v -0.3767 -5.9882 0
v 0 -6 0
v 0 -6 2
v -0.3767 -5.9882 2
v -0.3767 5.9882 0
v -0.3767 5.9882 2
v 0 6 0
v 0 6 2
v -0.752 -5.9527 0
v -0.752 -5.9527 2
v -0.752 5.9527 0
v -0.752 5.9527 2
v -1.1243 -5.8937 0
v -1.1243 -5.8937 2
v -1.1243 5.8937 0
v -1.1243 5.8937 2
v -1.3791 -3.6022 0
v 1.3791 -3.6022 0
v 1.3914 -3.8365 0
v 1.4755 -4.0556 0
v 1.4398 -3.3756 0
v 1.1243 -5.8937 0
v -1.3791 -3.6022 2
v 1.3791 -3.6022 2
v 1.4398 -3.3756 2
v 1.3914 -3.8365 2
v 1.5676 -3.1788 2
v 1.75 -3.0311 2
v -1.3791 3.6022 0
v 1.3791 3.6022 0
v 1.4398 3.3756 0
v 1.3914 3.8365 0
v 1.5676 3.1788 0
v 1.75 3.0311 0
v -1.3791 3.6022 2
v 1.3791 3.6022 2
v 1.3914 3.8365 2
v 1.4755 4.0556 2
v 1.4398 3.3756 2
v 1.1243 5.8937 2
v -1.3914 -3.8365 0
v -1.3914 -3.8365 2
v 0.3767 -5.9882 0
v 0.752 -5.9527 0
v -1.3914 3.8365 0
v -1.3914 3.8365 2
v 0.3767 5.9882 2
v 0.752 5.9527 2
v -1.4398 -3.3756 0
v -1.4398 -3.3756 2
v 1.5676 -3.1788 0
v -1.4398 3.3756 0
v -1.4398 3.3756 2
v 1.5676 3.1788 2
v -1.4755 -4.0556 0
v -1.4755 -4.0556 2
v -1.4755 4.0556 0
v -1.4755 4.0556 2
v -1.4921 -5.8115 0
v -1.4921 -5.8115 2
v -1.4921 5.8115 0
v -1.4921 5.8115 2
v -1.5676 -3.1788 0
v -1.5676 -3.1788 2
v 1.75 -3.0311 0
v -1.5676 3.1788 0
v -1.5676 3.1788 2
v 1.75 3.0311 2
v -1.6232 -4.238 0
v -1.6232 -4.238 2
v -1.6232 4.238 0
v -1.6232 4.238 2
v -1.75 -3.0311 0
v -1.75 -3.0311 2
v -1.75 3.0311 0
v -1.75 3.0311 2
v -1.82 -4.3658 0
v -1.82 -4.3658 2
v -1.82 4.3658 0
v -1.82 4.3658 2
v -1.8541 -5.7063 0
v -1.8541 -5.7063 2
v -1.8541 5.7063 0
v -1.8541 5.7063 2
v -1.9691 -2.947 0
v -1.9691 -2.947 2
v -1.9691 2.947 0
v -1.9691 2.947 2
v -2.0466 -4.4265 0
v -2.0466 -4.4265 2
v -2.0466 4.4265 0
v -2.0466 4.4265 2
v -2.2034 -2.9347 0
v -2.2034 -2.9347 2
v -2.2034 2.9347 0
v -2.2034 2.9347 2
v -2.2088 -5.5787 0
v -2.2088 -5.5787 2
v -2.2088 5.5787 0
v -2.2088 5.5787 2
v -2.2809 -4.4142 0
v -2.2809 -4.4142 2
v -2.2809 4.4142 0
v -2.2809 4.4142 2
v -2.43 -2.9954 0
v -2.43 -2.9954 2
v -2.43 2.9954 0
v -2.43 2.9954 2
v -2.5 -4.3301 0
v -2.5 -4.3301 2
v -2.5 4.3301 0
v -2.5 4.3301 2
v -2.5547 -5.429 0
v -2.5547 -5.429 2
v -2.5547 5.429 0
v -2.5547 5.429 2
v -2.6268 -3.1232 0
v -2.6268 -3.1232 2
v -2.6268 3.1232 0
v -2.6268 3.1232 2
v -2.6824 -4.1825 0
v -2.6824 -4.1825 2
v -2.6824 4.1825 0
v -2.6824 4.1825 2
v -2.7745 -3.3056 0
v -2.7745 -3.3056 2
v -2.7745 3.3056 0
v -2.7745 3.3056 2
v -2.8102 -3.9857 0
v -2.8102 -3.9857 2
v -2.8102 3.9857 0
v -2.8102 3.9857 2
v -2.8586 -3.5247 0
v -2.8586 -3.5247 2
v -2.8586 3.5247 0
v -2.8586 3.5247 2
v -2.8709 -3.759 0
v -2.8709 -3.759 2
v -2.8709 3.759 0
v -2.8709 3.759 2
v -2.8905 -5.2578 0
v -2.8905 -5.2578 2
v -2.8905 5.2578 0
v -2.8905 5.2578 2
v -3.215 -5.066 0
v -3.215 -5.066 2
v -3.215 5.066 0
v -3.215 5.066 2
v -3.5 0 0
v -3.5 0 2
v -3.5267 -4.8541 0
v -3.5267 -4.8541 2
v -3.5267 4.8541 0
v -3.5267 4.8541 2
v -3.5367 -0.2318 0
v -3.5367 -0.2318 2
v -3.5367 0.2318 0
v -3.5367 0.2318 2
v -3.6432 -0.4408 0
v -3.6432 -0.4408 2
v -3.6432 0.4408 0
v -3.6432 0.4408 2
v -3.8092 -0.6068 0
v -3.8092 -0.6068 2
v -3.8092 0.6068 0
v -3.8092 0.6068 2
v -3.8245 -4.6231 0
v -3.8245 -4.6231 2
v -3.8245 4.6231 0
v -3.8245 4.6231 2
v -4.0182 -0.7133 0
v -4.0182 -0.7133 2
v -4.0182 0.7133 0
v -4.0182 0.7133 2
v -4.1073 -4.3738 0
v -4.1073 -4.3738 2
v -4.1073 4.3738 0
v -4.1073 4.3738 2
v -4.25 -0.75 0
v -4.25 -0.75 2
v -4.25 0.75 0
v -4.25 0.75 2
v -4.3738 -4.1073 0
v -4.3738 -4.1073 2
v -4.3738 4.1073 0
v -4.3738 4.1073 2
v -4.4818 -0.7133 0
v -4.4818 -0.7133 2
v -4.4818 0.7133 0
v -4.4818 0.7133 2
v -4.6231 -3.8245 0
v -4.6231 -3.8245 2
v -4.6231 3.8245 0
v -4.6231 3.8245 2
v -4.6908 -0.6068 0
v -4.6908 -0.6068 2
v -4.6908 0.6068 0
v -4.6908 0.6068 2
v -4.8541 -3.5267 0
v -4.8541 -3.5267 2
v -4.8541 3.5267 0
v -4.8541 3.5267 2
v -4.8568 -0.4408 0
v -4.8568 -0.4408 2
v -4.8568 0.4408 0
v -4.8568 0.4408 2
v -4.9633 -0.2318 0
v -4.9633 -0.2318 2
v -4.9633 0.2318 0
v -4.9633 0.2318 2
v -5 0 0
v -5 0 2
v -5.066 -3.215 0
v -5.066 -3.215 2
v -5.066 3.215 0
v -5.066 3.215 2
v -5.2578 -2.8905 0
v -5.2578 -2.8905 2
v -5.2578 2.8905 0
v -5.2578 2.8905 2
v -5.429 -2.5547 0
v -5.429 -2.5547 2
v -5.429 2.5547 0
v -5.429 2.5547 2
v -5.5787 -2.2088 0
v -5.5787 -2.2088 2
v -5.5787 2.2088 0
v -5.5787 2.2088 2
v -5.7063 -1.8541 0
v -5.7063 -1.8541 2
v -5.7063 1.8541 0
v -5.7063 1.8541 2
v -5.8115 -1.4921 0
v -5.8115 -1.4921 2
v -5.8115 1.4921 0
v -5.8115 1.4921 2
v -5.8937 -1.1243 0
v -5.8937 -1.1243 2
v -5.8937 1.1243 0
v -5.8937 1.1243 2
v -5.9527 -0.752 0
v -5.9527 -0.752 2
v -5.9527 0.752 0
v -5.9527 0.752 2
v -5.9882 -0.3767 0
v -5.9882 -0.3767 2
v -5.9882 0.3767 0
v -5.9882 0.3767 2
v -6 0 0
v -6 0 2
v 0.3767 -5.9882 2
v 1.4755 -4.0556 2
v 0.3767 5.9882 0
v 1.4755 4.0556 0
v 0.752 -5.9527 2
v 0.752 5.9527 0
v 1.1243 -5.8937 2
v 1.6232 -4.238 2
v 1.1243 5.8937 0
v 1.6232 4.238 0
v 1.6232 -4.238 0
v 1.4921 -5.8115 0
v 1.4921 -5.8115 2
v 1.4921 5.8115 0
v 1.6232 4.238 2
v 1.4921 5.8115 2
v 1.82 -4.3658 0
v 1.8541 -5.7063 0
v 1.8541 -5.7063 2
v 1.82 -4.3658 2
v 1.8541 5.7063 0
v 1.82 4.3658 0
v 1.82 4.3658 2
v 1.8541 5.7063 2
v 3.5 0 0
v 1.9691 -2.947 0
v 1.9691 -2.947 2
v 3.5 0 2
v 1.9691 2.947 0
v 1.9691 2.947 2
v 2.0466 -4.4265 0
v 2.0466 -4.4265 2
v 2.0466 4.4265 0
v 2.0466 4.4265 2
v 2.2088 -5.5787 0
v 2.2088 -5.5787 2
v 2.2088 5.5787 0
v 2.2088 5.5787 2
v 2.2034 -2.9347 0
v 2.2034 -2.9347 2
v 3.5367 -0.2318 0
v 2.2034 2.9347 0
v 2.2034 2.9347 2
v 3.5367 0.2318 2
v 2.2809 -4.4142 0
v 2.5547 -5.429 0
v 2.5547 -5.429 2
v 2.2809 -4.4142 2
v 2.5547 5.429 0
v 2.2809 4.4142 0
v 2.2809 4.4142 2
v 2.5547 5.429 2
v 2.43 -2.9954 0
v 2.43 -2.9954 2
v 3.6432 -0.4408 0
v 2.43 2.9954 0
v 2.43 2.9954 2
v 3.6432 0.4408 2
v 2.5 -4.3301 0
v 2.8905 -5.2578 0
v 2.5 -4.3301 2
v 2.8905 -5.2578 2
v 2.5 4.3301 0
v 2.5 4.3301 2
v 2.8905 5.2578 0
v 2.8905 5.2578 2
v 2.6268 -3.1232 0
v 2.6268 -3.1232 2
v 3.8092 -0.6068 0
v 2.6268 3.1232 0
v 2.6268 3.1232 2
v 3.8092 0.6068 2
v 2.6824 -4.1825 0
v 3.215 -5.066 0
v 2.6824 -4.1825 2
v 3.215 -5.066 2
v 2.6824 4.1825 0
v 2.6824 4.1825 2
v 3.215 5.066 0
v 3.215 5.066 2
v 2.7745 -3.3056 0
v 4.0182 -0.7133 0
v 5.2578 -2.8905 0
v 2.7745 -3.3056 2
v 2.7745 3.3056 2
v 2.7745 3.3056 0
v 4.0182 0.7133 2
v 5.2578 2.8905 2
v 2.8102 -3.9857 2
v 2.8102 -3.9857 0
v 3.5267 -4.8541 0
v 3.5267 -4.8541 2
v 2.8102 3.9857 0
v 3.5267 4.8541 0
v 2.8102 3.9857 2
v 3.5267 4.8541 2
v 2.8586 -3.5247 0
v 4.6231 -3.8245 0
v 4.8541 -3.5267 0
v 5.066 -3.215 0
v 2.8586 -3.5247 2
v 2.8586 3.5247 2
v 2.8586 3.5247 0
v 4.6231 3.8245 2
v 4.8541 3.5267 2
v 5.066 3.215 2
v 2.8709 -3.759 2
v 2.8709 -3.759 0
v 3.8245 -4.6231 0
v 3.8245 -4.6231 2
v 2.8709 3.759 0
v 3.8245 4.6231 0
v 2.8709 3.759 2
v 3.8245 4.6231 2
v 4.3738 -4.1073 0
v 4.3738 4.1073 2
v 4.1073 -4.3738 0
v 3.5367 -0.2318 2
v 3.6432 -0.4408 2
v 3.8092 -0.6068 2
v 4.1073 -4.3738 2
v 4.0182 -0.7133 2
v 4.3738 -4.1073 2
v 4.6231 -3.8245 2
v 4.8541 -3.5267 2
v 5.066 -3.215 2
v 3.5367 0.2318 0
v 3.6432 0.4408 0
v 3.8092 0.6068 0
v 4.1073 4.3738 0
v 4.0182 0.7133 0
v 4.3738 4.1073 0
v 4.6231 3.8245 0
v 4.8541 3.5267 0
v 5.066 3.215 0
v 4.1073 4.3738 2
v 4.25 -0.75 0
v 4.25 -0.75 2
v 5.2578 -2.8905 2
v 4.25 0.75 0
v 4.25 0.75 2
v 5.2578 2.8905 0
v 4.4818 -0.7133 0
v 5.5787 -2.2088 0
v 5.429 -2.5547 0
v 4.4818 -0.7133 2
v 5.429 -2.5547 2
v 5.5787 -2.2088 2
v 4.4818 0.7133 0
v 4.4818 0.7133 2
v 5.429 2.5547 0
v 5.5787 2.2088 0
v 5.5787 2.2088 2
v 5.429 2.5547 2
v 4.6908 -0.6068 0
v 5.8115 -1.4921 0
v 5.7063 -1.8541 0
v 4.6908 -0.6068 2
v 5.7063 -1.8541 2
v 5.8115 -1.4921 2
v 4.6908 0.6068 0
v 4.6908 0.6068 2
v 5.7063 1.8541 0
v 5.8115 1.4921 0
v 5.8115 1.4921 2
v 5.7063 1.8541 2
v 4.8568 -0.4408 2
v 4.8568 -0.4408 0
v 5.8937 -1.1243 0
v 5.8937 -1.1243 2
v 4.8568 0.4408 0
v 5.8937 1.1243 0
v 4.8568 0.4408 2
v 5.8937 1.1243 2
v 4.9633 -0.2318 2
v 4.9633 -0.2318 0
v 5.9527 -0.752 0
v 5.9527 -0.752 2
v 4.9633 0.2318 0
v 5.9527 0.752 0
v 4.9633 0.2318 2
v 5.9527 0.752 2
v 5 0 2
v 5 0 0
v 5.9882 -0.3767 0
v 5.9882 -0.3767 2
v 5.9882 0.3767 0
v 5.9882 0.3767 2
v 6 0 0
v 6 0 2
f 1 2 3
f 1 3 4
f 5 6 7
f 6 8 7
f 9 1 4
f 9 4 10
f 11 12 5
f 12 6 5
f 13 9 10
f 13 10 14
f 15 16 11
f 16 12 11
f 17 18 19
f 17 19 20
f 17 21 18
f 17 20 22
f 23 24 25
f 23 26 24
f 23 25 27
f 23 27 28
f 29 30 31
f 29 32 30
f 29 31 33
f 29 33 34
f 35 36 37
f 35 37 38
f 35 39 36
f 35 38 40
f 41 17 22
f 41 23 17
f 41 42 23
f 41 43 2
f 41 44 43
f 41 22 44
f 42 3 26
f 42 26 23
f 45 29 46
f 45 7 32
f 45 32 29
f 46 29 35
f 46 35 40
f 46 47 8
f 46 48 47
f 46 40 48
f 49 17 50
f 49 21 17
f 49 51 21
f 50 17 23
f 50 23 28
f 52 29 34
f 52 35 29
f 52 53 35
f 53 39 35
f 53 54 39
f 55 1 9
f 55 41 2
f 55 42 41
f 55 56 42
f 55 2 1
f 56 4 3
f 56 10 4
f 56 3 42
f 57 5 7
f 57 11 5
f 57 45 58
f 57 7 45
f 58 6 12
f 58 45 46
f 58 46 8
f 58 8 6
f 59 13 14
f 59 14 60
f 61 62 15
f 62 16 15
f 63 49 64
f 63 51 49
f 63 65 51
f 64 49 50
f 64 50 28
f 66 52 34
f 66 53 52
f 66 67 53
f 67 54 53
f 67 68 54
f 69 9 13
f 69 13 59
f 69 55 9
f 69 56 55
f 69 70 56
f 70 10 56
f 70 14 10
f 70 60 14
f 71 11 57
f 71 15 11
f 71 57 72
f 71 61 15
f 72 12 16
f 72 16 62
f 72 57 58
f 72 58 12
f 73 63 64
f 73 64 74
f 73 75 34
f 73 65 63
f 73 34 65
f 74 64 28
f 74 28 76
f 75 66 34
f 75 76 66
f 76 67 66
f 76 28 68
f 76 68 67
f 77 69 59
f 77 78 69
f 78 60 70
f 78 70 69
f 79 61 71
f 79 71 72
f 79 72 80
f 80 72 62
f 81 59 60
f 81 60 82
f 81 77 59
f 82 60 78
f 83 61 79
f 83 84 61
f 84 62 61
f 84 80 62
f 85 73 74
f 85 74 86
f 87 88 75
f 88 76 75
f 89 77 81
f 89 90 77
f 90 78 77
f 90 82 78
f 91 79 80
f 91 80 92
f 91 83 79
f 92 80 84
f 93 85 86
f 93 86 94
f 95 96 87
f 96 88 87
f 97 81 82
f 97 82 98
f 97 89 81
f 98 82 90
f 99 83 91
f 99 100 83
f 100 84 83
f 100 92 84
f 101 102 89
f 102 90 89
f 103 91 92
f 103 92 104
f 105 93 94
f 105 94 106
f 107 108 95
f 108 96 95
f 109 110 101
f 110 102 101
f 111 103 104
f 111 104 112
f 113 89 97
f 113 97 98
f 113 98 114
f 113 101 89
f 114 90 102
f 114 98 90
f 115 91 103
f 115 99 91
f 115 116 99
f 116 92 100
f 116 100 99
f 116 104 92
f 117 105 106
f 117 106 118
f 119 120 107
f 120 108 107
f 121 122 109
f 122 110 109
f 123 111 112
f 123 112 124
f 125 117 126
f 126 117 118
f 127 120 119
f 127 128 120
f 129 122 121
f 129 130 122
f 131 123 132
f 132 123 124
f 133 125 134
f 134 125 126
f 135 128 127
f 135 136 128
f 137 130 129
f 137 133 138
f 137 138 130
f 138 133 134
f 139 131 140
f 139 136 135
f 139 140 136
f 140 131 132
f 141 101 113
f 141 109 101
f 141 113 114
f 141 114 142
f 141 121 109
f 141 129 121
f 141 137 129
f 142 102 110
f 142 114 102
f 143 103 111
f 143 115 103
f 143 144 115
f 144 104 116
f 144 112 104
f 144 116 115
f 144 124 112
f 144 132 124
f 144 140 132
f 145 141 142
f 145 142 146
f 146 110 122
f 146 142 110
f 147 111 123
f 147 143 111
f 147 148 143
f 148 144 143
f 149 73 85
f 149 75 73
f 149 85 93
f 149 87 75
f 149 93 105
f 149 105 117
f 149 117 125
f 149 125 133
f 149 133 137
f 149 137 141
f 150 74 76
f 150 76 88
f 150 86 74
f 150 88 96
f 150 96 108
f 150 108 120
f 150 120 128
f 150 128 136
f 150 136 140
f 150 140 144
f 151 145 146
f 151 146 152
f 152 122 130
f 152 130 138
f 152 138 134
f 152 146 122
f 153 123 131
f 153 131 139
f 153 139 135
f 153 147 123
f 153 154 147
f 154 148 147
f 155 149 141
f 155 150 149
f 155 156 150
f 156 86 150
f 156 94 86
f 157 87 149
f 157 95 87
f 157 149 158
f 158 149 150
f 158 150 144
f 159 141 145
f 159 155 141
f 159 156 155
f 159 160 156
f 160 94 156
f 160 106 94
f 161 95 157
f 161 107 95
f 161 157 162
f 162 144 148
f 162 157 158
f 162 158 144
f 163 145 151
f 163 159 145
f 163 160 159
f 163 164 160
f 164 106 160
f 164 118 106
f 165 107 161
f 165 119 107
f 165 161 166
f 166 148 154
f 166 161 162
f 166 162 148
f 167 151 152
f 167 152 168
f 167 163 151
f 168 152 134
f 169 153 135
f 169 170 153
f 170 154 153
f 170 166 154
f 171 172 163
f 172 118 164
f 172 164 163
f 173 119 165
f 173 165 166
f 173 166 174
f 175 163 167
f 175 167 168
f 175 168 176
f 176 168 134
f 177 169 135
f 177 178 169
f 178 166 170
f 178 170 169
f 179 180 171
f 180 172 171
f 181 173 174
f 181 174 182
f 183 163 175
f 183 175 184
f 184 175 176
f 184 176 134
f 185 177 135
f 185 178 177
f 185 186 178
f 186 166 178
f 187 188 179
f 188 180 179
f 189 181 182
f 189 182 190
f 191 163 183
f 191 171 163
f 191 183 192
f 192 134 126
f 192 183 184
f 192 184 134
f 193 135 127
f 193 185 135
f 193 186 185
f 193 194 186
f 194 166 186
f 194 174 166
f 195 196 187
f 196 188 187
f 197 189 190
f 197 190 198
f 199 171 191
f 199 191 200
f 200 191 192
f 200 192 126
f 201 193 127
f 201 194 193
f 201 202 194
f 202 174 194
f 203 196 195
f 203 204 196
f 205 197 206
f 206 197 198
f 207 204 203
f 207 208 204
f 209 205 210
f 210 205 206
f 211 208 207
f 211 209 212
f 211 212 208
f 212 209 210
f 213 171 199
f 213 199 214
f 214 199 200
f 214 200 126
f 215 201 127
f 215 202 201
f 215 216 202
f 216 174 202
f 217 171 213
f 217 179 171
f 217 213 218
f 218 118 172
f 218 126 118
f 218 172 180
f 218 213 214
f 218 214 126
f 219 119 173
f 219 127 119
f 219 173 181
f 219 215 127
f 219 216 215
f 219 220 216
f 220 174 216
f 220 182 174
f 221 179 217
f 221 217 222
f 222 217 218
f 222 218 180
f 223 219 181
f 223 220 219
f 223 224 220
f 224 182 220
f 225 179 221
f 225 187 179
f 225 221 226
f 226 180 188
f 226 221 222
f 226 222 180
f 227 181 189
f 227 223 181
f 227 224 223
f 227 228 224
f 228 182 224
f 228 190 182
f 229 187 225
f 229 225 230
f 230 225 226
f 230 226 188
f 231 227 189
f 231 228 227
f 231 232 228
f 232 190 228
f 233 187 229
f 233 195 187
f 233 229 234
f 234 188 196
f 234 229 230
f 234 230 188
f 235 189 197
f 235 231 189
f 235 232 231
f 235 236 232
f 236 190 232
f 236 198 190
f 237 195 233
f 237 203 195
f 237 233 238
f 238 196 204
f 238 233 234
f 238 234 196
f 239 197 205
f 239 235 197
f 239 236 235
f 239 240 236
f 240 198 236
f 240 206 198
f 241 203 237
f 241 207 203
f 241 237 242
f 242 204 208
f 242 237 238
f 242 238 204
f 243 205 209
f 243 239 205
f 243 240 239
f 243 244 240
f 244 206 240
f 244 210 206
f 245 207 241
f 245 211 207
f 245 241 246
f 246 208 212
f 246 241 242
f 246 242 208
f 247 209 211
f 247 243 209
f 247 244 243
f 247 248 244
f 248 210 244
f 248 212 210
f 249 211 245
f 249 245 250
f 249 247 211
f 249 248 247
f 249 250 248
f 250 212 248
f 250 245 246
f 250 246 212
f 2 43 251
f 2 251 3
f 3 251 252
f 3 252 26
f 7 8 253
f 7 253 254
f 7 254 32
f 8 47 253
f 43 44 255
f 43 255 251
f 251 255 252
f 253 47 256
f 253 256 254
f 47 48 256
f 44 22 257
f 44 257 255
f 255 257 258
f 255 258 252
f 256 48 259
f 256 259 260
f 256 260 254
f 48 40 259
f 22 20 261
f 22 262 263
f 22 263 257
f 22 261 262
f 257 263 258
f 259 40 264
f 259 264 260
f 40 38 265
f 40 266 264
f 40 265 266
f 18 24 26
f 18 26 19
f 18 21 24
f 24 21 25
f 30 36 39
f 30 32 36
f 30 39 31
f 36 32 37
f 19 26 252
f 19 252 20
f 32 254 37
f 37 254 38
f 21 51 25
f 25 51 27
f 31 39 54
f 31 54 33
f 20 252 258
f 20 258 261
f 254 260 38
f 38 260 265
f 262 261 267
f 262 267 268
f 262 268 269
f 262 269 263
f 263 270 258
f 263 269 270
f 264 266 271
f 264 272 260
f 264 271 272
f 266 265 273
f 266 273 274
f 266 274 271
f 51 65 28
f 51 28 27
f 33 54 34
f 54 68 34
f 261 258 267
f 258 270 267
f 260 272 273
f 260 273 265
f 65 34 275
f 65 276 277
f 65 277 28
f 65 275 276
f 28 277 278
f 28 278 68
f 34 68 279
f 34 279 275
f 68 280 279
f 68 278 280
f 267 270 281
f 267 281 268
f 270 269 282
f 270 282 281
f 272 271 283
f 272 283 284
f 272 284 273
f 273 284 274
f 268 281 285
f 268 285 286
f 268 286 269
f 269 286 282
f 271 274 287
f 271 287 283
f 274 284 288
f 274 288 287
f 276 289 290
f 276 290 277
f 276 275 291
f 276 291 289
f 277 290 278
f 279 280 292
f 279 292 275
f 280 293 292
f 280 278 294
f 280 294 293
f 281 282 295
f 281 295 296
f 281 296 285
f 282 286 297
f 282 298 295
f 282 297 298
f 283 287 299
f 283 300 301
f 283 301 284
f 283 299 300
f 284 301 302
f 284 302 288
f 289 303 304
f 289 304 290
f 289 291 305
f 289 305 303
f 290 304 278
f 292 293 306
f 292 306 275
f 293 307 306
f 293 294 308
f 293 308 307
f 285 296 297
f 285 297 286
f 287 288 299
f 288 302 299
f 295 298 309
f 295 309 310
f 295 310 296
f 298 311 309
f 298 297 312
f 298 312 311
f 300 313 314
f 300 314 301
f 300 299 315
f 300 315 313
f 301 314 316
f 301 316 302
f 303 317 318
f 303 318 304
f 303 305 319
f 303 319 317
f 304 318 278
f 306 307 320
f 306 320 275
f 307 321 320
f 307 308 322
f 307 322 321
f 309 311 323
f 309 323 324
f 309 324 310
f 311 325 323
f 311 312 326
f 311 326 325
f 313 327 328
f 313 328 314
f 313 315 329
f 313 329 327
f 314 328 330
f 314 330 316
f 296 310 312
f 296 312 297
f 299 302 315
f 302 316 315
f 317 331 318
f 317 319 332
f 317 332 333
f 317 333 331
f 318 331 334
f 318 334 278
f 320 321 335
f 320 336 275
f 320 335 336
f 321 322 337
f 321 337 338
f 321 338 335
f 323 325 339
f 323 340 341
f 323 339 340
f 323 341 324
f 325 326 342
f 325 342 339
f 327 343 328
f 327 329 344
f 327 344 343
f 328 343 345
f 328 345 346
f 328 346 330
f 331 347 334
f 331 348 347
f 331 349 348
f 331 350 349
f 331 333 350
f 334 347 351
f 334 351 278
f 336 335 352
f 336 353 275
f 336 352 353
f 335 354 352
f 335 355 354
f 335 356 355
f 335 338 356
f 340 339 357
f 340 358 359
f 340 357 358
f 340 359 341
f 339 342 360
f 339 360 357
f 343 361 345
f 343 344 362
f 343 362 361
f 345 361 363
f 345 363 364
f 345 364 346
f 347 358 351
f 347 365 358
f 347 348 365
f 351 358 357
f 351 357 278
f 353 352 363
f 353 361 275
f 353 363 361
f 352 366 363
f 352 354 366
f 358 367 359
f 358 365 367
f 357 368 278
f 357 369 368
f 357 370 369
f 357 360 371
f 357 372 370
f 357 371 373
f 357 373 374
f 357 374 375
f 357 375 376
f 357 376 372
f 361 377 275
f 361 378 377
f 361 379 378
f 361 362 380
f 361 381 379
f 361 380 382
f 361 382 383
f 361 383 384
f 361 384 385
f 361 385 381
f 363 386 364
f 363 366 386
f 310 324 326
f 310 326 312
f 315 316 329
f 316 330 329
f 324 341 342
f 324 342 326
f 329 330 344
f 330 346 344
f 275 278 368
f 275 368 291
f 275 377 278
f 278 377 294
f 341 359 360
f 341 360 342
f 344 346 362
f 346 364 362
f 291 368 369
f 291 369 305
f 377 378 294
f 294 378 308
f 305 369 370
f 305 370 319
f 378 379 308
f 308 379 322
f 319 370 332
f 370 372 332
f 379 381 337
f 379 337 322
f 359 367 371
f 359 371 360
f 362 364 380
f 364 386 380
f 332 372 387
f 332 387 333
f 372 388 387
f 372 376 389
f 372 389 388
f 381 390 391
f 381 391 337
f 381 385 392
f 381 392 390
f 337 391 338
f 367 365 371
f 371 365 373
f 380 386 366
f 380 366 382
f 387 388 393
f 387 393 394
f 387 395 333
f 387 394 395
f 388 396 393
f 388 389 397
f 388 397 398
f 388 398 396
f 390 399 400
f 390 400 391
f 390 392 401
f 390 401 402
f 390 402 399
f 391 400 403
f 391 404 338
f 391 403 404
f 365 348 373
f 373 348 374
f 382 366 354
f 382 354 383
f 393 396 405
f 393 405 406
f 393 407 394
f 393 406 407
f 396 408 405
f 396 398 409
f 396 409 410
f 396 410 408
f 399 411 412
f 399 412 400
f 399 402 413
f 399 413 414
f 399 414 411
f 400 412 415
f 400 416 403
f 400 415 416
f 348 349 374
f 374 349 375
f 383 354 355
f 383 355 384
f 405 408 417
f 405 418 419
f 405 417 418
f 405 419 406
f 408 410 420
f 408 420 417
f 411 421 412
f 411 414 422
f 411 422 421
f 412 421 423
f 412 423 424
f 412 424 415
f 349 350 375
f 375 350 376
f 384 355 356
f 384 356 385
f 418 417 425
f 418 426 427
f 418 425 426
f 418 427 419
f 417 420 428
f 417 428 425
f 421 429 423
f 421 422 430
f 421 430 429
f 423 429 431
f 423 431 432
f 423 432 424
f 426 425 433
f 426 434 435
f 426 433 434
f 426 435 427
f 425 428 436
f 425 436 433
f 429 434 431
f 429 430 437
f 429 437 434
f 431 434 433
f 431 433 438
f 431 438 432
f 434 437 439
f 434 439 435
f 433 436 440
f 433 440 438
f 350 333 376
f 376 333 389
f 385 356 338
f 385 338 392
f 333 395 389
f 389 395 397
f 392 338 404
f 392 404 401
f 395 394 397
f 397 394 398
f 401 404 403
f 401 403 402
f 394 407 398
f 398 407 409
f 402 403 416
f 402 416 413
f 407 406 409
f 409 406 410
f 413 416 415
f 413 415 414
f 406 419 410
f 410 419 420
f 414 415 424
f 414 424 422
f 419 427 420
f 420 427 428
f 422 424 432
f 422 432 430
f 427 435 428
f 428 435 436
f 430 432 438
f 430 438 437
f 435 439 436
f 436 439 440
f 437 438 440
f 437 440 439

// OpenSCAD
// file: ../config.scad
//========== ROCKET PARAMETERS ==========//

//rocket
wall_thickness = 0.9;
motorwall_thickness = 2;
module_height = 140;


//liftoff_ring
liftoff_ring = true;
ring_diameter = 4.2;
ring_thickness = 1;
ring_height = 10;
ring_translate_angle = 11.9;

//stabilizer
stabilizer_thickness = 0.8;
stabilizer_count = 3;
stabilizer_height = 60;
stabilizer_width = 30;
stabilizer_angle = 50;

//motor
motor_diameter = 18.6;
motor_height = 70;

//joint
joint_height = 13;
joint_space = 0.3;
joint_thickness = 1;
joint_transition_height = 2;

//container
container_diameter = 25;
container_height = 50;
container_transition = 10;
hole_diameter = 2;

//nosecone
cone_height = 50;

//parachute ring
parachute_ring_diameter = 12;
parachute_ring_thickness = 2;
parachute_ring_hole_count = 6;
parachute_ring_hole_distance = 1;
parachute_ring_hole_diameter = 1.5;

outer_diameter = motor_diameter+motorwall_thickness*2;

//========== LAUNCHPAD PARAMETERS ==========//

//launchpad
launch_rod_diameter = 1.5;
launch_rod_height = 250;
launchpad_width = 120;
launchpad_deepth = 120;
launchpad_height = 40;
launchpad_fire_hole = 20;
// main file
include <../config.scad>

module parachute_ring() {
    difference() {
        cylinder(d=parachute_ring_diameter, h=parachute_ring_thickness, $fn=100);

        for(i = [1:parachute_ring_hole_count]) {
            rotate([0, 0, i*(360/parachute_ring_hole_count)])
                translate([parachute_ring_diameter/2-parachute_ring_hole_diameter/2-parachute_ring_hole_distance, 0, parachute_ring_thickness/-2])
                cylinder(d=parachute_ring_hole_diameter, h=parachute_ring_thickness*2, $fn=20);
        }
    }
}

parachute_ring();
